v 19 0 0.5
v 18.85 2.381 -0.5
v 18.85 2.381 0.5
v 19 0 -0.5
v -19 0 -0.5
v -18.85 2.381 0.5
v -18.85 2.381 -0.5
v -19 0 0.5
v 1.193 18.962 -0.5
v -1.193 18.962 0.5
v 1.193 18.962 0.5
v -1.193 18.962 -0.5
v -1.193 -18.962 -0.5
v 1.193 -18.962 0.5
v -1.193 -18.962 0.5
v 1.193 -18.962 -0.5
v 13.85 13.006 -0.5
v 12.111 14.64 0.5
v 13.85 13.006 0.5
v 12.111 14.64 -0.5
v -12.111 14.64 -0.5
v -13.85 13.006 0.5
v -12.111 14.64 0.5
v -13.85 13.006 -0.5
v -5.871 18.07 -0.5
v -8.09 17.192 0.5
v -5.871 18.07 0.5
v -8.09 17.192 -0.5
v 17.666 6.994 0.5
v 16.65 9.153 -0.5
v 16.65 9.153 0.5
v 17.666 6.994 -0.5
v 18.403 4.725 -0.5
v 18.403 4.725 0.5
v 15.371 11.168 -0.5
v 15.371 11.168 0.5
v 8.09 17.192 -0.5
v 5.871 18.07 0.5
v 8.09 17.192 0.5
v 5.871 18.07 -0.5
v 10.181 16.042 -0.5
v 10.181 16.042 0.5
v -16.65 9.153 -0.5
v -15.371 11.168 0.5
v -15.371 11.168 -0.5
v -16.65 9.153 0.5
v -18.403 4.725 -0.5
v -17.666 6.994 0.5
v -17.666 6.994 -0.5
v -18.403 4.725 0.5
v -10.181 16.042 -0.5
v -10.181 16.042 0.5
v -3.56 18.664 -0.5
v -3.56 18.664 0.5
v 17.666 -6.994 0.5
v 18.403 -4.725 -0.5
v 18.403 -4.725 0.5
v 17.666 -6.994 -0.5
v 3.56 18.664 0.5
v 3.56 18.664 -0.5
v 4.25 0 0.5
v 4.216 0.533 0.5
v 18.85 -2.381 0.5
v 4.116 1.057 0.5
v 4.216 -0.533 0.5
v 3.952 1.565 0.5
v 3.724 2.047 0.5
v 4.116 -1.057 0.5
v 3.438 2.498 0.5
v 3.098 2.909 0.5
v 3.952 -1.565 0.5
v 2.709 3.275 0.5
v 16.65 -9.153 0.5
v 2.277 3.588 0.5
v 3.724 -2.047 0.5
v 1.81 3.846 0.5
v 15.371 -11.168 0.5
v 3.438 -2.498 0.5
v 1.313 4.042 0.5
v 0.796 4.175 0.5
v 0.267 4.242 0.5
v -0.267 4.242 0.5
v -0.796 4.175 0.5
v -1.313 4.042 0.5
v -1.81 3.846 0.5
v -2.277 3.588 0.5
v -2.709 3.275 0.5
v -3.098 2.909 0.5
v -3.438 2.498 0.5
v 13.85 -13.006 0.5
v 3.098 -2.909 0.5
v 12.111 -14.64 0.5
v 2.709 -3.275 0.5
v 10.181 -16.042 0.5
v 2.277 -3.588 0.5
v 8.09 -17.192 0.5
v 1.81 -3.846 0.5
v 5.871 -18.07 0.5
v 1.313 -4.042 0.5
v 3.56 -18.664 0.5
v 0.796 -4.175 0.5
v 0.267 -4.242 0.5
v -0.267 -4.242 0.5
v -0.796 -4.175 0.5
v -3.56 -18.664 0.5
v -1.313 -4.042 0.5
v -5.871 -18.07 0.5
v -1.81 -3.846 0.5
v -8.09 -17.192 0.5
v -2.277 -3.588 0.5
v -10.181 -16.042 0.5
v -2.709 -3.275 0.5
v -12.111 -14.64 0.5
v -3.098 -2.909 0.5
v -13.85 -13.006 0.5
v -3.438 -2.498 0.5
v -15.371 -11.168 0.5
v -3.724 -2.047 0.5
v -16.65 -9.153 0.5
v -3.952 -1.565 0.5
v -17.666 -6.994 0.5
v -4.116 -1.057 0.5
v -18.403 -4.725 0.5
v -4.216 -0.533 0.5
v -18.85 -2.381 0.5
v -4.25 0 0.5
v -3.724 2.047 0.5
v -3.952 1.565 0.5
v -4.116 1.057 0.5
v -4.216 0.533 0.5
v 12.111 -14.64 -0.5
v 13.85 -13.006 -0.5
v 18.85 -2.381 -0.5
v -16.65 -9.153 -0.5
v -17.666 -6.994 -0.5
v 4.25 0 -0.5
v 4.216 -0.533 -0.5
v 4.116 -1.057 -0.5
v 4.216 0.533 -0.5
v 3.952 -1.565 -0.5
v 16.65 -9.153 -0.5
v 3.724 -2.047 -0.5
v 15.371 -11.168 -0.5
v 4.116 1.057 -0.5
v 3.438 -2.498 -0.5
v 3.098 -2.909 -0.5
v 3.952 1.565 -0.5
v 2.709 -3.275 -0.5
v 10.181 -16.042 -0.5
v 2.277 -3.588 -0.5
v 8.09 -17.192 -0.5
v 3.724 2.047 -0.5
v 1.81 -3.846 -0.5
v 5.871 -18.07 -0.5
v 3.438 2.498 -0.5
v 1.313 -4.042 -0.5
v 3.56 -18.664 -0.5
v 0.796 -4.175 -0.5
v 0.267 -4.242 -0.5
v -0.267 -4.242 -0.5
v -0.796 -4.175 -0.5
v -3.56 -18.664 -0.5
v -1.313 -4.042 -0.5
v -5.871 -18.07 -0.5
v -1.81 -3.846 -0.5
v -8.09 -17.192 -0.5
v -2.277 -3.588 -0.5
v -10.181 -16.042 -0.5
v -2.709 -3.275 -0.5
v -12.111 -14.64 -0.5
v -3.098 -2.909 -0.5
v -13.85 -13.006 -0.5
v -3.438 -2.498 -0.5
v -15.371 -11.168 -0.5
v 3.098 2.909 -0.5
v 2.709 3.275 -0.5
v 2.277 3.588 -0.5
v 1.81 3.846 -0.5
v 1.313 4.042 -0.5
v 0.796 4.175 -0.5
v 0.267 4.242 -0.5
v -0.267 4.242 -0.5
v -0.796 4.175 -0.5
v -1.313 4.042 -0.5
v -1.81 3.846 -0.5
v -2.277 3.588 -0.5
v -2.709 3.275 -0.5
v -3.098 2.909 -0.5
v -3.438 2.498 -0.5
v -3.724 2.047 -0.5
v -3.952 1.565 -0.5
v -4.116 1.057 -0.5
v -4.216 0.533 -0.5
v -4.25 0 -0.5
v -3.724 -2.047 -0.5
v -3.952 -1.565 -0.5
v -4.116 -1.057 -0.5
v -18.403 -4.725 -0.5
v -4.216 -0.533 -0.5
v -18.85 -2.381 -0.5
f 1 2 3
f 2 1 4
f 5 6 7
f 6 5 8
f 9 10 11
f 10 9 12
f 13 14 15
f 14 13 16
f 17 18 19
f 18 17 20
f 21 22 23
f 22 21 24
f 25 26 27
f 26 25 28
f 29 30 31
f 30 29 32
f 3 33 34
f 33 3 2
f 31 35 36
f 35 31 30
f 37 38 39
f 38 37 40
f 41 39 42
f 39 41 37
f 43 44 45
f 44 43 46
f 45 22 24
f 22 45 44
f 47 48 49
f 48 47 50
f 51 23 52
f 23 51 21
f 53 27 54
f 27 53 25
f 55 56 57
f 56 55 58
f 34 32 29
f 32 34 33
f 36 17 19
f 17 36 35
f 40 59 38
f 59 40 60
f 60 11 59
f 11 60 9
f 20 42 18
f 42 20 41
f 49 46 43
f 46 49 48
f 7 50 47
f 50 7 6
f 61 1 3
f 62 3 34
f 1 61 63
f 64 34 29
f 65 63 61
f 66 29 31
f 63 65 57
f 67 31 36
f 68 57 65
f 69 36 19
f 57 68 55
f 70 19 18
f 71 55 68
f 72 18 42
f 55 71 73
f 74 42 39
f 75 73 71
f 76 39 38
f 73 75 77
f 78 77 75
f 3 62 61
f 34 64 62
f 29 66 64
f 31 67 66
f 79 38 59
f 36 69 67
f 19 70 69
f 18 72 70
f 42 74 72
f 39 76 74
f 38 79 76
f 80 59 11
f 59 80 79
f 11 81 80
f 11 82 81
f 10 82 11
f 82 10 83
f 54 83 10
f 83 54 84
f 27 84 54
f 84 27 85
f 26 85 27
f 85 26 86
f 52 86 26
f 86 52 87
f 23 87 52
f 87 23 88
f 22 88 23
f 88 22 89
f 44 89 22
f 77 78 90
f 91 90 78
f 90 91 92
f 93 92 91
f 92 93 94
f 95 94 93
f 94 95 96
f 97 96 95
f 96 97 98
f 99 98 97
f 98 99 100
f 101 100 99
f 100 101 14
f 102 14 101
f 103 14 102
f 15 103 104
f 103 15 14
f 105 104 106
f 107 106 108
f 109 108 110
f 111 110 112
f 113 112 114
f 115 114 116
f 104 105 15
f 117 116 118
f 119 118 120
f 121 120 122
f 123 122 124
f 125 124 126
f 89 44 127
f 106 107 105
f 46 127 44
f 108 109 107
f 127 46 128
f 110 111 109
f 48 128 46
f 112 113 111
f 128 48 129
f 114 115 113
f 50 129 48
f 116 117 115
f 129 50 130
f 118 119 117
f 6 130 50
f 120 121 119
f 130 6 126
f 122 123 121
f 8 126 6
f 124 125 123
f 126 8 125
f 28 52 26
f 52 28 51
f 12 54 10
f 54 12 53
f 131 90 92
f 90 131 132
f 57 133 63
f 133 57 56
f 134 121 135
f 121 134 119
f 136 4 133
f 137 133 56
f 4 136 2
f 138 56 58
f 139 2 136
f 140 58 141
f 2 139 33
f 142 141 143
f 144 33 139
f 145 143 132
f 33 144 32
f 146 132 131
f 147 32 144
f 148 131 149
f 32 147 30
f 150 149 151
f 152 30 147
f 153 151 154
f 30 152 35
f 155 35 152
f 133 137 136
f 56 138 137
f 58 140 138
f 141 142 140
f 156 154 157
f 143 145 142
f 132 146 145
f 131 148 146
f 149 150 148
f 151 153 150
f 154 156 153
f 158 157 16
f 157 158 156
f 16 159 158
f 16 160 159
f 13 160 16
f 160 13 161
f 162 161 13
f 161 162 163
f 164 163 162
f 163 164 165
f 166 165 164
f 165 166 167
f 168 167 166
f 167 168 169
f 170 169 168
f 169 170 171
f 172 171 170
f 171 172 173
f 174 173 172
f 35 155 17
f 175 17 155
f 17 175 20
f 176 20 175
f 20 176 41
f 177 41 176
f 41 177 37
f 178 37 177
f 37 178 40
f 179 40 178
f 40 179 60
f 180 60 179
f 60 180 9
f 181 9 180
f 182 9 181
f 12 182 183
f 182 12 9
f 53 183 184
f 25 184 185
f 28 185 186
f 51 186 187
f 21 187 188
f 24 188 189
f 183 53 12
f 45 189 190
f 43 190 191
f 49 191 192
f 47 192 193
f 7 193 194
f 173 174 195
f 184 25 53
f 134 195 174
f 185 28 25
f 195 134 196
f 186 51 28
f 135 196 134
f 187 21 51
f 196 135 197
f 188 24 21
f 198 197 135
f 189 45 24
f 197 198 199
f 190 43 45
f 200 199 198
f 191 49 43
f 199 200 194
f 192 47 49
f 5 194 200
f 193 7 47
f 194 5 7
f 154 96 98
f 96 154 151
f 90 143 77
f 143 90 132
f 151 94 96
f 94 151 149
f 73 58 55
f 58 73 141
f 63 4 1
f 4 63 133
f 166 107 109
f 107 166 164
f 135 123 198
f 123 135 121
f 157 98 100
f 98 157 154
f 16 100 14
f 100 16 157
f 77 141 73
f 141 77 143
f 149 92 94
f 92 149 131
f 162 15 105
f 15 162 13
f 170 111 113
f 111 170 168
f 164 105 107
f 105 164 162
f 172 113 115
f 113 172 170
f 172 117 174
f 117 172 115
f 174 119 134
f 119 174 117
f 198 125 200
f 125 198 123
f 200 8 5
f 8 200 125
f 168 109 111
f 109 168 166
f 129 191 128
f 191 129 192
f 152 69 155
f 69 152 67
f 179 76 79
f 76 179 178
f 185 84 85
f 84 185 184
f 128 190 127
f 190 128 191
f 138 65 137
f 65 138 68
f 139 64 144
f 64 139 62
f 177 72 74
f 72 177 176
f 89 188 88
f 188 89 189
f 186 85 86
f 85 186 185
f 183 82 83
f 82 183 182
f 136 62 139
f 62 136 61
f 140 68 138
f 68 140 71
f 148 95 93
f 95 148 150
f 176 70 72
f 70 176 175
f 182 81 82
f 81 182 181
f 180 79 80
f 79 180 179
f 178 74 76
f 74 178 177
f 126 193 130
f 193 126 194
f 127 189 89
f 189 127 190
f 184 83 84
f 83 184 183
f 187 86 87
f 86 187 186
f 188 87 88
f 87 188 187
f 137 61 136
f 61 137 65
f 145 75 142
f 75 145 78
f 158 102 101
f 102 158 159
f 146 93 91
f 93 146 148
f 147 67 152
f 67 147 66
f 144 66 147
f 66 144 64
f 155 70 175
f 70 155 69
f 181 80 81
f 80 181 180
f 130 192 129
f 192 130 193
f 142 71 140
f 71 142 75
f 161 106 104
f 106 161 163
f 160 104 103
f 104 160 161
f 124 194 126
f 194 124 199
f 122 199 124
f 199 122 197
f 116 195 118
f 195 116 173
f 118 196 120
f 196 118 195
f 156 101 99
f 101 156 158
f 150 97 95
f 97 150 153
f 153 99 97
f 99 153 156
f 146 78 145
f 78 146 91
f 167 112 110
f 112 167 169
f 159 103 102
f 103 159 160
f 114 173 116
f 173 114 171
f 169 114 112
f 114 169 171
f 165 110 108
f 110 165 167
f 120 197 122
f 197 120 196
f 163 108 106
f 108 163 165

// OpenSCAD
$fn = 50;


difference() {
	union() {
		translate(v = [0, 0, -0.5000000000]) {
			cylinder(h = 1, r = 19.0000000000);
		}
	}
	union() {
		translate(v = [0, 0, -100.0000000000]) {
			cylinder(h = 200, r = 4.2500000000);
		}
	}
}
